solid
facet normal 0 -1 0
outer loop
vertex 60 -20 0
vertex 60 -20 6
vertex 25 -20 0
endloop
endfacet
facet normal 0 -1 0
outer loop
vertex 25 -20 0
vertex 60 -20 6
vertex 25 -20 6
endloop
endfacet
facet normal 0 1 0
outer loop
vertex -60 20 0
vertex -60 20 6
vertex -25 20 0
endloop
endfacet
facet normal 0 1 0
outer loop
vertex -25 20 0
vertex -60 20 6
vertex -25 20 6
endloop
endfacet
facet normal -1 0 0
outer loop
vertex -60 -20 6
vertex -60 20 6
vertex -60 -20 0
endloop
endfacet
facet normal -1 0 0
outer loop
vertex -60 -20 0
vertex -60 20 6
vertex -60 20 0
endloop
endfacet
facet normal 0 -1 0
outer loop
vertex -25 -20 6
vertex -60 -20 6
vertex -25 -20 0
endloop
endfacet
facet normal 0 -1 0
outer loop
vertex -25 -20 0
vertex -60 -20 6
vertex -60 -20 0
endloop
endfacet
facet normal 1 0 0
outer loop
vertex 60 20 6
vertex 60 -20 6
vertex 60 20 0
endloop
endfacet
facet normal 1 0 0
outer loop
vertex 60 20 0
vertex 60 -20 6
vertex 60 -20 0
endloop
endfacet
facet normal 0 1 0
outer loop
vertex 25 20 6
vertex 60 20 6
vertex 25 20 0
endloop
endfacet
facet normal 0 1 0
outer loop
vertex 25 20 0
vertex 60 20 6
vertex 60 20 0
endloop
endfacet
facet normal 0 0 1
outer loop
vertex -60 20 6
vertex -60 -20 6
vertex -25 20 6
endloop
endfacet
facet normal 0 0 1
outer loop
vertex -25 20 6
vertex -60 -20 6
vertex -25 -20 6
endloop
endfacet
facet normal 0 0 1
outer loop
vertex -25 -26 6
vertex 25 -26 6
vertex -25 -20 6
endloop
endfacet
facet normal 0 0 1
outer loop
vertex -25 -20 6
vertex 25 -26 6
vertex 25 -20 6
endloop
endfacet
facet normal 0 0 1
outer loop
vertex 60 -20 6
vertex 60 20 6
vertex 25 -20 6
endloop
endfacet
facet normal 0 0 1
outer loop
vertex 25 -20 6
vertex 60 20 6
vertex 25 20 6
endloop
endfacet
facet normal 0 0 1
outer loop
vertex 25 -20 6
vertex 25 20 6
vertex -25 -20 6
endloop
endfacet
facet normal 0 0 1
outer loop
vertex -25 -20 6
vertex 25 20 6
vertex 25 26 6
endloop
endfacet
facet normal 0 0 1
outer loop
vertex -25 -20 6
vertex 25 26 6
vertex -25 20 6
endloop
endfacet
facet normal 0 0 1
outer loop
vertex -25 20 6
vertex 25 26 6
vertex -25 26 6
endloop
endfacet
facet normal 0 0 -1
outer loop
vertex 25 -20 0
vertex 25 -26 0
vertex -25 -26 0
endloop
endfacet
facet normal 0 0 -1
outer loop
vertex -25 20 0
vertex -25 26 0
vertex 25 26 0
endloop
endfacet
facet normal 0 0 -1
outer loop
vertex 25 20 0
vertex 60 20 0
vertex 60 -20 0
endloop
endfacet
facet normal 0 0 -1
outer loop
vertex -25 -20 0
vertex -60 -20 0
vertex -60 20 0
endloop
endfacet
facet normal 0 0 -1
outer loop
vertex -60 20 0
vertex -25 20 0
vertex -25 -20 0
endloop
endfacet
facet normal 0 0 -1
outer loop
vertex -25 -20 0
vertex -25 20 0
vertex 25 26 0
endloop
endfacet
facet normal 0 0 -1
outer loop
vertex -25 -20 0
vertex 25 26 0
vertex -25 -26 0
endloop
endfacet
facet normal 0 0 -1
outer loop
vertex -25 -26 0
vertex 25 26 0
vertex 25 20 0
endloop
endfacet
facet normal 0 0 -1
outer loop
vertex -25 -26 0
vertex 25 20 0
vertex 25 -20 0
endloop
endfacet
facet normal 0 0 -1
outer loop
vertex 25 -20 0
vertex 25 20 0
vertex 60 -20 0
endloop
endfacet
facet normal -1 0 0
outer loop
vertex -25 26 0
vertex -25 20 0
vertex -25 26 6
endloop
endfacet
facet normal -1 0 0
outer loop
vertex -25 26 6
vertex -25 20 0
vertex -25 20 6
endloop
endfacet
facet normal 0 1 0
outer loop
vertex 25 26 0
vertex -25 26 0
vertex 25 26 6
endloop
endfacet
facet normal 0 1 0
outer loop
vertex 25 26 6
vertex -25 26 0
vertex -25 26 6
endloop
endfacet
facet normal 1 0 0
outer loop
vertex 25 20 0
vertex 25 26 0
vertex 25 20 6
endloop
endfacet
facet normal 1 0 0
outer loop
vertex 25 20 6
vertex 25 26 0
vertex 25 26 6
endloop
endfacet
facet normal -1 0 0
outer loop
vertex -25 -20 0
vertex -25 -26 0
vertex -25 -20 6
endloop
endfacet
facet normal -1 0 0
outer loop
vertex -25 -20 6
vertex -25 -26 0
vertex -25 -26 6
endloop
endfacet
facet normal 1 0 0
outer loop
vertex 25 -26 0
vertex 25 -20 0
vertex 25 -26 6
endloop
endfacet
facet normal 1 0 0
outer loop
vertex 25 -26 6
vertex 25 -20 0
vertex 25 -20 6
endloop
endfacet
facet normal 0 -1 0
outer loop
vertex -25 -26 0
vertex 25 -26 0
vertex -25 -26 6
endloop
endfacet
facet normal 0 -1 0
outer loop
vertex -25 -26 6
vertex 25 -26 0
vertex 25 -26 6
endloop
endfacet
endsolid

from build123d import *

# Parameters (mm, degrees)
ESQUISSE1_W        = 120
ESQUISSE1_H        = 40
BOSS_EXTRU_1_DEPTH = 6
ESQUISSE2_W        = 50
ESQUISSE2_H        = 6
BOSS_EXTRU_2_DEPTH = 6


with BuildPart() as part:
    # Esquisse1 → Boss.-Extru.1 (new body)
    with BuildSketch(Plane.XY):
        Rectangle(ESQUISSE1_W, ESQUISSE1_H)
    extrude(amount=BOSS_EXTRU_1_DEPTH)

    # Esquisse2 → Boss.-Extru.2 (add)
    with BuildSketch(Plane.XY.offset(6)):
        with Locations((0, 23)):
            Rectangle(ESQUISSE2_W, ESQUISSE2_H)
        with Locations((0, -23)):
            Rectangle(ESQUISSE2_W, ESQUISSE2_H)
    extrude(amount=-BOSS_EXTRU_2_DEPTH)


solid = part.part
